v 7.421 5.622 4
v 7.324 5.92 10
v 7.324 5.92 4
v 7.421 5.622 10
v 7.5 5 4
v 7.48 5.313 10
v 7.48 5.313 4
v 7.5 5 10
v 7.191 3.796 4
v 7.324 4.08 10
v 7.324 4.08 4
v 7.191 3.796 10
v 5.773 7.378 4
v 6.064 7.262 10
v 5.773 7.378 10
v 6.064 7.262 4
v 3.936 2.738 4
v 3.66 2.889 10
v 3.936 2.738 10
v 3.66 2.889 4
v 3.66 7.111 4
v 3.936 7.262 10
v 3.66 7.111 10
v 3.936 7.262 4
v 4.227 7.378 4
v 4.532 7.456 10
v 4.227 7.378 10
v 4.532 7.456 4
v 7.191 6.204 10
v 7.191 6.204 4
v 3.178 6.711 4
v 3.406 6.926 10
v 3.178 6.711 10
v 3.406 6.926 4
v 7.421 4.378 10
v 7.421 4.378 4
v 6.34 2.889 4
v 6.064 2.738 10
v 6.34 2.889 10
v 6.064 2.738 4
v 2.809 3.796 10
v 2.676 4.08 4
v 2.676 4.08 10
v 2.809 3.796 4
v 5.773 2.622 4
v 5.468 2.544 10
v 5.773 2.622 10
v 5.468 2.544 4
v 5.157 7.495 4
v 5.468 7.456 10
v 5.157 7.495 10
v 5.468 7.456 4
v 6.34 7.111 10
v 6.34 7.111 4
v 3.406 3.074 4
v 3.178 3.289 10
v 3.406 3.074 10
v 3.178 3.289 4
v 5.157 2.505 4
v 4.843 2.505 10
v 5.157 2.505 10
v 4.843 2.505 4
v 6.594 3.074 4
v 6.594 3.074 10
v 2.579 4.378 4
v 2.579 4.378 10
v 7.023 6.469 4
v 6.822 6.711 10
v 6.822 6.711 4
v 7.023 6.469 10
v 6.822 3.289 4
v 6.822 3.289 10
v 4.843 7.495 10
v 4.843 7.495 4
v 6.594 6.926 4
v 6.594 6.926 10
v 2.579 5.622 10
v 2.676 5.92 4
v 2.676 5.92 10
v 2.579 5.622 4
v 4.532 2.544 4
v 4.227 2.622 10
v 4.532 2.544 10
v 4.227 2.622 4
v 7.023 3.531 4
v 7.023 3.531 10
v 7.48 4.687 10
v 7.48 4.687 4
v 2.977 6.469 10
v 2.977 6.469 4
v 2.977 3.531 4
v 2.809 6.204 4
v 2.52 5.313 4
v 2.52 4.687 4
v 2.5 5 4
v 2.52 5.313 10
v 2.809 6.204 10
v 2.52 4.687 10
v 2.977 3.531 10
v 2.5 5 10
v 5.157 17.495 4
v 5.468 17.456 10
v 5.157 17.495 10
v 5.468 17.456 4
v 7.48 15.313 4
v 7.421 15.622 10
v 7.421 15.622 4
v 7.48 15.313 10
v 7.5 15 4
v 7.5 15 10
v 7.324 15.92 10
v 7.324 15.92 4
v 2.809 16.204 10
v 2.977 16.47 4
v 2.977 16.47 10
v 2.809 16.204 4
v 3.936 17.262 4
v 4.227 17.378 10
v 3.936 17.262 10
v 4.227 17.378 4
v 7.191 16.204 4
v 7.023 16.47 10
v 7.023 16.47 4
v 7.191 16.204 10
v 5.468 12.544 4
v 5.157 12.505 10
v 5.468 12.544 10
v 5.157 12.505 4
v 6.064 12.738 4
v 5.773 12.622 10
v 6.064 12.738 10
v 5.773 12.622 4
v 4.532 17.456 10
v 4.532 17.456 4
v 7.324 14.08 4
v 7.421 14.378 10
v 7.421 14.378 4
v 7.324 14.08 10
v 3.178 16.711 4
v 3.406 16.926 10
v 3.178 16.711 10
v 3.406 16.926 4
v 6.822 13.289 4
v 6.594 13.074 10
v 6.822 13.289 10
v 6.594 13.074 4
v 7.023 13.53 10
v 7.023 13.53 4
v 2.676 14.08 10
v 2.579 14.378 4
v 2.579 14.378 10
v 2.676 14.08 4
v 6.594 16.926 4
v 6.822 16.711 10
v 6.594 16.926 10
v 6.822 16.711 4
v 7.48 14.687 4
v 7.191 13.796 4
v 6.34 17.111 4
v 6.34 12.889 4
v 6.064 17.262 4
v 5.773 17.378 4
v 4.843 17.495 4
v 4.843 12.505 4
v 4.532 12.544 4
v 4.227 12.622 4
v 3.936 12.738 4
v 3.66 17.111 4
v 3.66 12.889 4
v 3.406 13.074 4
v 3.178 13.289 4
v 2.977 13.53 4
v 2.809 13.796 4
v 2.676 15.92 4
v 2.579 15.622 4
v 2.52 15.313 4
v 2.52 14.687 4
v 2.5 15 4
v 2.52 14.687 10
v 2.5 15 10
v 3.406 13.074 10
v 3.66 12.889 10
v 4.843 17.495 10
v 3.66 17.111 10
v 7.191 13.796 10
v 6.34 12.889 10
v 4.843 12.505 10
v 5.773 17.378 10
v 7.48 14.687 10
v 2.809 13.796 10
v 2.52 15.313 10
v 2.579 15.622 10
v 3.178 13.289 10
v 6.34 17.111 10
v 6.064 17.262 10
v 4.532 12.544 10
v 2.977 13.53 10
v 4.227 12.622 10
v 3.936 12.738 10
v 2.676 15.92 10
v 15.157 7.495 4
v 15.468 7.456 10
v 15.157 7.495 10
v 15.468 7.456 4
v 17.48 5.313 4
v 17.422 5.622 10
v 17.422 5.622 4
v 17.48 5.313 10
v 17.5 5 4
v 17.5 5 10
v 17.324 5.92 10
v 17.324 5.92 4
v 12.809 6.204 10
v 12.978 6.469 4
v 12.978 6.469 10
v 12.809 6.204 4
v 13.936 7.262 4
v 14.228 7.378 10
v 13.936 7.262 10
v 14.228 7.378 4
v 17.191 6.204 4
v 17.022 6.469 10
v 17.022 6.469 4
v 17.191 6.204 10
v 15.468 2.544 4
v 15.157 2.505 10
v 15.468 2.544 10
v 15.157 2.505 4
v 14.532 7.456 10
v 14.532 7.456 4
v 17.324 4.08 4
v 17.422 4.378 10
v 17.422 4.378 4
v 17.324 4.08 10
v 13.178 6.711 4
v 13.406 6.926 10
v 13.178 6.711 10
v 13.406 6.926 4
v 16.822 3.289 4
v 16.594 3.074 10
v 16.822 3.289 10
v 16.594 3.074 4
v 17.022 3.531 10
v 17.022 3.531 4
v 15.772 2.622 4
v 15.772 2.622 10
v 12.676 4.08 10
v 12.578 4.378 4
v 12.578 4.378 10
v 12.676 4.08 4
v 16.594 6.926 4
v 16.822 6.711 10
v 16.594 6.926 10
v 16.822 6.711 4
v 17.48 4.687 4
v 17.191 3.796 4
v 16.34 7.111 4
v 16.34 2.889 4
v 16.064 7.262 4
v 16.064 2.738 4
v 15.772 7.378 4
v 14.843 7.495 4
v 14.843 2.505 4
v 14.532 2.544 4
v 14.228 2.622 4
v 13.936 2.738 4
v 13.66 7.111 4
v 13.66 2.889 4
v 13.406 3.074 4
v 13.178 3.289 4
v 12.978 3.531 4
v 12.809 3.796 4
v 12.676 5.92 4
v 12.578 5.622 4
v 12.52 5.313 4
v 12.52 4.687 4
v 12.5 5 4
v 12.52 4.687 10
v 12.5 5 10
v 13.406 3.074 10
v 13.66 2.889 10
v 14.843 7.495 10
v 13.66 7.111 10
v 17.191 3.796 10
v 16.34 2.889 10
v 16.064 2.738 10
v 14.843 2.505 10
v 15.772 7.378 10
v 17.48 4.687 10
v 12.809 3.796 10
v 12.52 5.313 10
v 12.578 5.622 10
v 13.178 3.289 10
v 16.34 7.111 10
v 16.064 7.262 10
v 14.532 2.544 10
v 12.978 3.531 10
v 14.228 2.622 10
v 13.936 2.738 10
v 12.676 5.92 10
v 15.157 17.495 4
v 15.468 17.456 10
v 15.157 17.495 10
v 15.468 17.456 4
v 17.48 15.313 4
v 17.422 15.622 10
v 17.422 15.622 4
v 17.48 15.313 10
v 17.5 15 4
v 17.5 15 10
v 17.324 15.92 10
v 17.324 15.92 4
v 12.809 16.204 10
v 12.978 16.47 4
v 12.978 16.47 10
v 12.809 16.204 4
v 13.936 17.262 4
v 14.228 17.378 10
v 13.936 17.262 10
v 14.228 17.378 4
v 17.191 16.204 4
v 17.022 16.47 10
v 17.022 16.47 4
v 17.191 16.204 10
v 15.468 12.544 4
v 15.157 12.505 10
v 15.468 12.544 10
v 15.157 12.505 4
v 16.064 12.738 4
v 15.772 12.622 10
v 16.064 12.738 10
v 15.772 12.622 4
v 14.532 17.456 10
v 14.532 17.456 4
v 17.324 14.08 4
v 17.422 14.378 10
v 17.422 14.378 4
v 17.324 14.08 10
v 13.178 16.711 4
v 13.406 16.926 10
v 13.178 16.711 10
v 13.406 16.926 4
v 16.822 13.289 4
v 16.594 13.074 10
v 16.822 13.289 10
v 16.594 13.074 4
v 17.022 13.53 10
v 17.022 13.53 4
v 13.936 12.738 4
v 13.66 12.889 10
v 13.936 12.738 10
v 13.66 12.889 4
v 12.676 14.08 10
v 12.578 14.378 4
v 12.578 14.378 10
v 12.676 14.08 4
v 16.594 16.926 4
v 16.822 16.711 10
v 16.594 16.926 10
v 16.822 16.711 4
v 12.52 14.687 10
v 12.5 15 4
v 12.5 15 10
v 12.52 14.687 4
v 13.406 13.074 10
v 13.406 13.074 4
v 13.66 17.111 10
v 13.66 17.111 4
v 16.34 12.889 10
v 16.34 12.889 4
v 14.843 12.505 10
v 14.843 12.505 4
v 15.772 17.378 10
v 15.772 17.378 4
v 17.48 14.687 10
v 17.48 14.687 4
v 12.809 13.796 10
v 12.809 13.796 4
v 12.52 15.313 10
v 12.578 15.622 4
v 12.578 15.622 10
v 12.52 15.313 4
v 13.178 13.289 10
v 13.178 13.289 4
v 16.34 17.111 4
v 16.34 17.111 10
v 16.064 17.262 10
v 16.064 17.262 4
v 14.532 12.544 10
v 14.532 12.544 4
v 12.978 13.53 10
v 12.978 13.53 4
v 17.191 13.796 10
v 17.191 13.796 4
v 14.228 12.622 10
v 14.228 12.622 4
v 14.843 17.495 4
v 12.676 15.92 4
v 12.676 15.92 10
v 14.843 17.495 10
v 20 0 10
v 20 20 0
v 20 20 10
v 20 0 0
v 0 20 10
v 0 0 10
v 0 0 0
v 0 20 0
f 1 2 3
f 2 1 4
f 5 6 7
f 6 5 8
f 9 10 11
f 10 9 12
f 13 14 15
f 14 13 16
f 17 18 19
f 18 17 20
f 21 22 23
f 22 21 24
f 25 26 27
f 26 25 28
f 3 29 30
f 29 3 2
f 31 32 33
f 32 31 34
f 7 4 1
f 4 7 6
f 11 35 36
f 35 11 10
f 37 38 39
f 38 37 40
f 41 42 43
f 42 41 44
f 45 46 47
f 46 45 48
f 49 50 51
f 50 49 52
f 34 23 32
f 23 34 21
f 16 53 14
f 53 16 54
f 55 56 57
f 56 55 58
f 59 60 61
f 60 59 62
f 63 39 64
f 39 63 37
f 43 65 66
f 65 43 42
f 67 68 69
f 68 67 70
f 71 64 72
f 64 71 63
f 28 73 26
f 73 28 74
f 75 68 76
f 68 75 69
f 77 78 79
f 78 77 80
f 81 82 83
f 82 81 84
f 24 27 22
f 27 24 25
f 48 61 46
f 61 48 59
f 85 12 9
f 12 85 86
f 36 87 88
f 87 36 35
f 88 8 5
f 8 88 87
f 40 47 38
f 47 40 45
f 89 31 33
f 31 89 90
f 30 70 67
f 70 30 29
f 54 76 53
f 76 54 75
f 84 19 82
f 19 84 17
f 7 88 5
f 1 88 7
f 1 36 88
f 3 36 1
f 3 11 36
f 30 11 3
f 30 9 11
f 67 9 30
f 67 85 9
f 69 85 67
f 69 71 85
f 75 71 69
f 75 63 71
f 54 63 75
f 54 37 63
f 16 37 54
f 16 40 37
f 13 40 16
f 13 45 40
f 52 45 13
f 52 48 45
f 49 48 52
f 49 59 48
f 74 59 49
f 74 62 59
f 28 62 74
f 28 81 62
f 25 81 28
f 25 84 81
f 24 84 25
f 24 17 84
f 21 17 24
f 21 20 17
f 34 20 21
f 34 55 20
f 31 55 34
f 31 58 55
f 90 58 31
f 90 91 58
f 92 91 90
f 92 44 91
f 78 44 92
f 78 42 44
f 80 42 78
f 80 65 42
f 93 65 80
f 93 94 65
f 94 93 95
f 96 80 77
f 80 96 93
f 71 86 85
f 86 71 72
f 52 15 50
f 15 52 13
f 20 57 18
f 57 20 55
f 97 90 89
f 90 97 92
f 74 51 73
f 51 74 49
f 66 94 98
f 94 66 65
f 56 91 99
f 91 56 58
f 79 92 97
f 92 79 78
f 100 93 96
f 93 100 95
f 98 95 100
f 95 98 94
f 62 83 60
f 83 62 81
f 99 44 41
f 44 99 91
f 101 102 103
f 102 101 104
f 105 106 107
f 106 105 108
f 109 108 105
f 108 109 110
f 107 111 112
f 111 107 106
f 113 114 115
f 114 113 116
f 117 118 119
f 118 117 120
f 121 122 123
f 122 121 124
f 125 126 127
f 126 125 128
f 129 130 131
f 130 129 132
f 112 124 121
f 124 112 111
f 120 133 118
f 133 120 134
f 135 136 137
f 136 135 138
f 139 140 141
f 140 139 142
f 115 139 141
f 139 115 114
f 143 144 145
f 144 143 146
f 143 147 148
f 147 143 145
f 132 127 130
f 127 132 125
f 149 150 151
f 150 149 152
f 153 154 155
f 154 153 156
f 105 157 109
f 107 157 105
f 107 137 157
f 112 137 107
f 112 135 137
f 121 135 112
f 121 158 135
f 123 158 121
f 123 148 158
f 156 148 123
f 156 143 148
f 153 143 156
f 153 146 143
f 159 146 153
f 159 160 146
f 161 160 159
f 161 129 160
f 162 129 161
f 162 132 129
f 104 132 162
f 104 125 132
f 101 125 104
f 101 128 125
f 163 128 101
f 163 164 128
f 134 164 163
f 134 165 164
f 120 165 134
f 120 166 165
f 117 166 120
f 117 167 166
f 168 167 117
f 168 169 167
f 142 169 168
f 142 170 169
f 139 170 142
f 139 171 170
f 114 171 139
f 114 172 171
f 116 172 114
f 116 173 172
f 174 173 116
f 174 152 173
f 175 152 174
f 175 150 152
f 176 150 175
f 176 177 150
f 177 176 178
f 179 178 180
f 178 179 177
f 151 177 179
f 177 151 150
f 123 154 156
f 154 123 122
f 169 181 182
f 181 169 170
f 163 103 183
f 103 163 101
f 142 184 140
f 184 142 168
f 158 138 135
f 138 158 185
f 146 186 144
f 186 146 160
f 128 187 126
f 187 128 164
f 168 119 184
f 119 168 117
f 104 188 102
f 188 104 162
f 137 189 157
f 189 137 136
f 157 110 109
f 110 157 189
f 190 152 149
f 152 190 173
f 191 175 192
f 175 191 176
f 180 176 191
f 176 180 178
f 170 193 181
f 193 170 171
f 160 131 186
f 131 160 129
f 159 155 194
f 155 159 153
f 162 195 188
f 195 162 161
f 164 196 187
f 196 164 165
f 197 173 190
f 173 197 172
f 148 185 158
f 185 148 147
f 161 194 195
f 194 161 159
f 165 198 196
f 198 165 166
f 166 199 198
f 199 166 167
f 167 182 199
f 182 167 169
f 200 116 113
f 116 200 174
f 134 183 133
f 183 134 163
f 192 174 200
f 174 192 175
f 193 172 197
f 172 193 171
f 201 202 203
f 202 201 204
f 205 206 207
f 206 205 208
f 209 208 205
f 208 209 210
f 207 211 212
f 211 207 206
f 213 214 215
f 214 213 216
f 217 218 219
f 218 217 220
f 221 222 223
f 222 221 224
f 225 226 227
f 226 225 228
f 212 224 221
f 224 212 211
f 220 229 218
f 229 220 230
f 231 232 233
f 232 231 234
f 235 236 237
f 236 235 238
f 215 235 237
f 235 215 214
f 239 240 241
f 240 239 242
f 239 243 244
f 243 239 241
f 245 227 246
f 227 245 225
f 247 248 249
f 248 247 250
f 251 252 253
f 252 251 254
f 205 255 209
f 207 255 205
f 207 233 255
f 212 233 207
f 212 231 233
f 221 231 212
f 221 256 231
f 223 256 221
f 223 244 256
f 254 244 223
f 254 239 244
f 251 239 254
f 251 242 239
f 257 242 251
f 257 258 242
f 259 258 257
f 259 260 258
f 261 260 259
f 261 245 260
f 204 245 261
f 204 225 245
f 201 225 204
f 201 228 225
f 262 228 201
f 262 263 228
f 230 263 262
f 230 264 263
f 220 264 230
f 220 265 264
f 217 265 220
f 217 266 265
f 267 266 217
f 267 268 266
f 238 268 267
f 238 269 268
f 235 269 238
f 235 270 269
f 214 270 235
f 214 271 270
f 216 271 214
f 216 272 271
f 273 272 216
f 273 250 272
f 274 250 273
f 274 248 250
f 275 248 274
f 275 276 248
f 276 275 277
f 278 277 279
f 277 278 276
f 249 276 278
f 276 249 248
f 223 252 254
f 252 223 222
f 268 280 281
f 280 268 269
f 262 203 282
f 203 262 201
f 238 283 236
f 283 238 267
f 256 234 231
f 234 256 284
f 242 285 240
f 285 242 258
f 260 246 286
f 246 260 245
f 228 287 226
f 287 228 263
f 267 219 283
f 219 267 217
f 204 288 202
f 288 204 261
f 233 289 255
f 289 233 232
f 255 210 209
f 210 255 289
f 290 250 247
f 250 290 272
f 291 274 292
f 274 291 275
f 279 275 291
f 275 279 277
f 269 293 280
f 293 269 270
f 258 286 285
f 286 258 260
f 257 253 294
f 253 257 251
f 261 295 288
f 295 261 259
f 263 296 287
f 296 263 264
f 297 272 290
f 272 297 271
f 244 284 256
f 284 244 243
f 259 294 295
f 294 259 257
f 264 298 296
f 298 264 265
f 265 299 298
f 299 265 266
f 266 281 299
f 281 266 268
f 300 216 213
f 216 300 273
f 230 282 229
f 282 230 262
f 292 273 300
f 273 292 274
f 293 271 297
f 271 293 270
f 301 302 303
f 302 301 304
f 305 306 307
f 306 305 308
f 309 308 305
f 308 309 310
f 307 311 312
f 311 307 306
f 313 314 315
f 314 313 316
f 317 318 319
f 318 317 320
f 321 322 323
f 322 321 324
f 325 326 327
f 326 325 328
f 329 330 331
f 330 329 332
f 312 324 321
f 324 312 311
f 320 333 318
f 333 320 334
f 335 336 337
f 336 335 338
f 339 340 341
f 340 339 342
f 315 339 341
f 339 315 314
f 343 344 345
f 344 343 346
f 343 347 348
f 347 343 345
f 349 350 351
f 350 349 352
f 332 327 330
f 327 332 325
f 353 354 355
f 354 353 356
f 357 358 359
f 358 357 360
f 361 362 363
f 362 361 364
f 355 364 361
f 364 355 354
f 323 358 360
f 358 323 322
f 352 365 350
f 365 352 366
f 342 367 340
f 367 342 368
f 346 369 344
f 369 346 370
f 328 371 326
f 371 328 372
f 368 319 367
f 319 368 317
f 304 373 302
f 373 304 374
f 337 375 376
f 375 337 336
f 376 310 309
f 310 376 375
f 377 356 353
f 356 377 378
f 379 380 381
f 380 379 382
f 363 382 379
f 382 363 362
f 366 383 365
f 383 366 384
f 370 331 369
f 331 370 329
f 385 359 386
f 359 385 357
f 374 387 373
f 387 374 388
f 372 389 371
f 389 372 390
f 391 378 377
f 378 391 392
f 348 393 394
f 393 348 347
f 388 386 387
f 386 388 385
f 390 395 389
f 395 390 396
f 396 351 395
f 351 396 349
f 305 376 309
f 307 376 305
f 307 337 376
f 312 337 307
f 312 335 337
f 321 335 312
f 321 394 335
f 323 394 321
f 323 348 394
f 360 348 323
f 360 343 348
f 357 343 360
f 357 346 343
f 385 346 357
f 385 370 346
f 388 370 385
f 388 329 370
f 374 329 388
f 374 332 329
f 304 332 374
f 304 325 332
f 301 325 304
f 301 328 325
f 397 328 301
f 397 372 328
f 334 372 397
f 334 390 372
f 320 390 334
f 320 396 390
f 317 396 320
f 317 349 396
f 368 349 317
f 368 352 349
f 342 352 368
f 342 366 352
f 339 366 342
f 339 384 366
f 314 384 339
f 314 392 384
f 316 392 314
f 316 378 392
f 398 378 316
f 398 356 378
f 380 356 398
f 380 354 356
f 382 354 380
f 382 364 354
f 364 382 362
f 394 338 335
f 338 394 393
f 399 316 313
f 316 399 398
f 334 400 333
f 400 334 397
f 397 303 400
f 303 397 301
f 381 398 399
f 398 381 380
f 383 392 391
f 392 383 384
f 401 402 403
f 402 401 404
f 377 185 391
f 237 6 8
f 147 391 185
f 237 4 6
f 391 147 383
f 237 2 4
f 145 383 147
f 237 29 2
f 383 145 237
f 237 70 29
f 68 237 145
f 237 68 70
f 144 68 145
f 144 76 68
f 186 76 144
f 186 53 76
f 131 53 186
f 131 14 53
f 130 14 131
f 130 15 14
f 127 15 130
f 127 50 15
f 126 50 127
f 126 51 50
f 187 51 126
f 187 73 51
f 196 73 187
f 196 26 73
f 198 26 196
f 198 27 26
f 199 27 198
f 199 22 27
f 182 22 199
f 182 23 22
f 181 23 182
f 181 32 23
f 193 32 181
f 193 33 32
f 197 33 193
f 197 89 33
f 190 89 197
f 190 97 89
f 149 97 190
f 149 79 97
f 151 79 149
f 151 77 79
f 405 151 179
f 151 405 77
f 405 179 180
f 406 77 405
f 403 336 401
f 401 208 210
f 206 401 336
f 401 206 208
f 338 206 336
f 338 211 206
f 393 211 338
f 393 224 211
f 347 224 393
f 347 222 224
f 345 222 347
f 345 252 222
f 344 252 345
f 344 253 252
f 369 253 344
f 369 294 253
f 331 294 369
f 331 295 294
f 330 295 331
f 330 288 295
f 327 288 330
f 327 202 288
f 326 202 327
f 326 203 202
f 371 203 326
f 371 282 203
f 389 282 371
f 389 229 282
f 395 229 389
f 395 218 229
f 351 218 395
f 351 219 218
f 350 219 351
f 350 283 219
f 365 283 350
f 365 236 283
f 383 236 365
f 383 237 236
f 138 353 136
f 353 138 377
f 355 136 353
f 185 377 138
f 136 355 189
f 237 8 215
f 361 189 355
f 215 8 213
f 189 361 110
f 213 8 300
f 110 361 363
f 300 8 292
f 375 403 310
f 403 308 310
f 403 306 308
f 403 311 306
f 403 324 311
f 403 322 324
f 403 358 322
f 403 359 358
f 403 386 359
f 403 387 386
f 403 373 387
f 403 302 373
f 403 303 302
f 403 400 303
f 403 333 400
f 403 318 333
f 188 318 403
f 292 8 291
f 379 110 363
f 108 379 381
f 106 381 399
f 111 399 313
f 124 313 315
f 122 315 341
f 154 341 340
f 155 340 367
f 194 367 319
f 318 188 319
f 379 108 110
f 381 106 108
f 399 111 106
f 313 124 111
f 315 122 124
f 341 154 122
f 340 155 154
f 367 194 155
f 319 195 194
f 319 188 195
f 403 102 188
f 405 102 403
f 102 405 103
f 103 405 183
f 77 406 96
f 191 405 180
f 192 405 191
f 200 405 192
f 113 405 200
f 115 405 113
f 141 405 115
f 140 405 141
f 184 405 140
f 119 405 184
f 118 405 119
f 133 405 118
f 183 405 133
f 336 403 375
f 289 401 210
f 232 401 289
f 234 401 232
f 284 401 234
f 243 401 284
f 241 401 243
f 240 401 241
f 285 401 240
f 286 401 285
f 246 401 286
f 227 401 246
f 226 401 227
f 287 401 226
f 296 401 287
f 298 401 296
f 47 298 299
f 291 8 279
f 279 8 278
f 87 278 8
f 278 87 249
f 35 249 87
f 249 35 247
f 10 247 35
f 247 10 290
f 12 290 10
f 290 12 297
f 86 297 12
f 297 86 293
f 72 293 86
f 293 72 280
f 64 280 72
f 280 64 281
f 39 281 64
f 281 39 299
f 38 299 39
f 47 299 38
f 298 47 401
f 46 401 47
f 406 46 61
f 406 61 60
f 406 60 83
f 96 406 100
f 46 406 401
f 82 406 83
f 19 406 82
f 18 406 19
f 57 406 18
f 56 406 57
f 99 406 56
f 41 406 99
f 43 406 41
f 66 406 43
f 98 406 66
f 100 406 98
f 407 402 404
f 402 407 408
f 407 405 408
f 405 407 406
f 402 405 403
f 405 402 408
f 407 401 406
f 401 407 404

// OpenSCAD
$fn=50;
P=10;
difference() {
  cube([20,20,10]);
  translate([-P/2,-P/2,0]) #for (ii=[1,2]) {
    for (jj=[1,2]) {
      translate([ii*P,jj*P,4]) cylinder(10,d=5);
    }
  }
}
